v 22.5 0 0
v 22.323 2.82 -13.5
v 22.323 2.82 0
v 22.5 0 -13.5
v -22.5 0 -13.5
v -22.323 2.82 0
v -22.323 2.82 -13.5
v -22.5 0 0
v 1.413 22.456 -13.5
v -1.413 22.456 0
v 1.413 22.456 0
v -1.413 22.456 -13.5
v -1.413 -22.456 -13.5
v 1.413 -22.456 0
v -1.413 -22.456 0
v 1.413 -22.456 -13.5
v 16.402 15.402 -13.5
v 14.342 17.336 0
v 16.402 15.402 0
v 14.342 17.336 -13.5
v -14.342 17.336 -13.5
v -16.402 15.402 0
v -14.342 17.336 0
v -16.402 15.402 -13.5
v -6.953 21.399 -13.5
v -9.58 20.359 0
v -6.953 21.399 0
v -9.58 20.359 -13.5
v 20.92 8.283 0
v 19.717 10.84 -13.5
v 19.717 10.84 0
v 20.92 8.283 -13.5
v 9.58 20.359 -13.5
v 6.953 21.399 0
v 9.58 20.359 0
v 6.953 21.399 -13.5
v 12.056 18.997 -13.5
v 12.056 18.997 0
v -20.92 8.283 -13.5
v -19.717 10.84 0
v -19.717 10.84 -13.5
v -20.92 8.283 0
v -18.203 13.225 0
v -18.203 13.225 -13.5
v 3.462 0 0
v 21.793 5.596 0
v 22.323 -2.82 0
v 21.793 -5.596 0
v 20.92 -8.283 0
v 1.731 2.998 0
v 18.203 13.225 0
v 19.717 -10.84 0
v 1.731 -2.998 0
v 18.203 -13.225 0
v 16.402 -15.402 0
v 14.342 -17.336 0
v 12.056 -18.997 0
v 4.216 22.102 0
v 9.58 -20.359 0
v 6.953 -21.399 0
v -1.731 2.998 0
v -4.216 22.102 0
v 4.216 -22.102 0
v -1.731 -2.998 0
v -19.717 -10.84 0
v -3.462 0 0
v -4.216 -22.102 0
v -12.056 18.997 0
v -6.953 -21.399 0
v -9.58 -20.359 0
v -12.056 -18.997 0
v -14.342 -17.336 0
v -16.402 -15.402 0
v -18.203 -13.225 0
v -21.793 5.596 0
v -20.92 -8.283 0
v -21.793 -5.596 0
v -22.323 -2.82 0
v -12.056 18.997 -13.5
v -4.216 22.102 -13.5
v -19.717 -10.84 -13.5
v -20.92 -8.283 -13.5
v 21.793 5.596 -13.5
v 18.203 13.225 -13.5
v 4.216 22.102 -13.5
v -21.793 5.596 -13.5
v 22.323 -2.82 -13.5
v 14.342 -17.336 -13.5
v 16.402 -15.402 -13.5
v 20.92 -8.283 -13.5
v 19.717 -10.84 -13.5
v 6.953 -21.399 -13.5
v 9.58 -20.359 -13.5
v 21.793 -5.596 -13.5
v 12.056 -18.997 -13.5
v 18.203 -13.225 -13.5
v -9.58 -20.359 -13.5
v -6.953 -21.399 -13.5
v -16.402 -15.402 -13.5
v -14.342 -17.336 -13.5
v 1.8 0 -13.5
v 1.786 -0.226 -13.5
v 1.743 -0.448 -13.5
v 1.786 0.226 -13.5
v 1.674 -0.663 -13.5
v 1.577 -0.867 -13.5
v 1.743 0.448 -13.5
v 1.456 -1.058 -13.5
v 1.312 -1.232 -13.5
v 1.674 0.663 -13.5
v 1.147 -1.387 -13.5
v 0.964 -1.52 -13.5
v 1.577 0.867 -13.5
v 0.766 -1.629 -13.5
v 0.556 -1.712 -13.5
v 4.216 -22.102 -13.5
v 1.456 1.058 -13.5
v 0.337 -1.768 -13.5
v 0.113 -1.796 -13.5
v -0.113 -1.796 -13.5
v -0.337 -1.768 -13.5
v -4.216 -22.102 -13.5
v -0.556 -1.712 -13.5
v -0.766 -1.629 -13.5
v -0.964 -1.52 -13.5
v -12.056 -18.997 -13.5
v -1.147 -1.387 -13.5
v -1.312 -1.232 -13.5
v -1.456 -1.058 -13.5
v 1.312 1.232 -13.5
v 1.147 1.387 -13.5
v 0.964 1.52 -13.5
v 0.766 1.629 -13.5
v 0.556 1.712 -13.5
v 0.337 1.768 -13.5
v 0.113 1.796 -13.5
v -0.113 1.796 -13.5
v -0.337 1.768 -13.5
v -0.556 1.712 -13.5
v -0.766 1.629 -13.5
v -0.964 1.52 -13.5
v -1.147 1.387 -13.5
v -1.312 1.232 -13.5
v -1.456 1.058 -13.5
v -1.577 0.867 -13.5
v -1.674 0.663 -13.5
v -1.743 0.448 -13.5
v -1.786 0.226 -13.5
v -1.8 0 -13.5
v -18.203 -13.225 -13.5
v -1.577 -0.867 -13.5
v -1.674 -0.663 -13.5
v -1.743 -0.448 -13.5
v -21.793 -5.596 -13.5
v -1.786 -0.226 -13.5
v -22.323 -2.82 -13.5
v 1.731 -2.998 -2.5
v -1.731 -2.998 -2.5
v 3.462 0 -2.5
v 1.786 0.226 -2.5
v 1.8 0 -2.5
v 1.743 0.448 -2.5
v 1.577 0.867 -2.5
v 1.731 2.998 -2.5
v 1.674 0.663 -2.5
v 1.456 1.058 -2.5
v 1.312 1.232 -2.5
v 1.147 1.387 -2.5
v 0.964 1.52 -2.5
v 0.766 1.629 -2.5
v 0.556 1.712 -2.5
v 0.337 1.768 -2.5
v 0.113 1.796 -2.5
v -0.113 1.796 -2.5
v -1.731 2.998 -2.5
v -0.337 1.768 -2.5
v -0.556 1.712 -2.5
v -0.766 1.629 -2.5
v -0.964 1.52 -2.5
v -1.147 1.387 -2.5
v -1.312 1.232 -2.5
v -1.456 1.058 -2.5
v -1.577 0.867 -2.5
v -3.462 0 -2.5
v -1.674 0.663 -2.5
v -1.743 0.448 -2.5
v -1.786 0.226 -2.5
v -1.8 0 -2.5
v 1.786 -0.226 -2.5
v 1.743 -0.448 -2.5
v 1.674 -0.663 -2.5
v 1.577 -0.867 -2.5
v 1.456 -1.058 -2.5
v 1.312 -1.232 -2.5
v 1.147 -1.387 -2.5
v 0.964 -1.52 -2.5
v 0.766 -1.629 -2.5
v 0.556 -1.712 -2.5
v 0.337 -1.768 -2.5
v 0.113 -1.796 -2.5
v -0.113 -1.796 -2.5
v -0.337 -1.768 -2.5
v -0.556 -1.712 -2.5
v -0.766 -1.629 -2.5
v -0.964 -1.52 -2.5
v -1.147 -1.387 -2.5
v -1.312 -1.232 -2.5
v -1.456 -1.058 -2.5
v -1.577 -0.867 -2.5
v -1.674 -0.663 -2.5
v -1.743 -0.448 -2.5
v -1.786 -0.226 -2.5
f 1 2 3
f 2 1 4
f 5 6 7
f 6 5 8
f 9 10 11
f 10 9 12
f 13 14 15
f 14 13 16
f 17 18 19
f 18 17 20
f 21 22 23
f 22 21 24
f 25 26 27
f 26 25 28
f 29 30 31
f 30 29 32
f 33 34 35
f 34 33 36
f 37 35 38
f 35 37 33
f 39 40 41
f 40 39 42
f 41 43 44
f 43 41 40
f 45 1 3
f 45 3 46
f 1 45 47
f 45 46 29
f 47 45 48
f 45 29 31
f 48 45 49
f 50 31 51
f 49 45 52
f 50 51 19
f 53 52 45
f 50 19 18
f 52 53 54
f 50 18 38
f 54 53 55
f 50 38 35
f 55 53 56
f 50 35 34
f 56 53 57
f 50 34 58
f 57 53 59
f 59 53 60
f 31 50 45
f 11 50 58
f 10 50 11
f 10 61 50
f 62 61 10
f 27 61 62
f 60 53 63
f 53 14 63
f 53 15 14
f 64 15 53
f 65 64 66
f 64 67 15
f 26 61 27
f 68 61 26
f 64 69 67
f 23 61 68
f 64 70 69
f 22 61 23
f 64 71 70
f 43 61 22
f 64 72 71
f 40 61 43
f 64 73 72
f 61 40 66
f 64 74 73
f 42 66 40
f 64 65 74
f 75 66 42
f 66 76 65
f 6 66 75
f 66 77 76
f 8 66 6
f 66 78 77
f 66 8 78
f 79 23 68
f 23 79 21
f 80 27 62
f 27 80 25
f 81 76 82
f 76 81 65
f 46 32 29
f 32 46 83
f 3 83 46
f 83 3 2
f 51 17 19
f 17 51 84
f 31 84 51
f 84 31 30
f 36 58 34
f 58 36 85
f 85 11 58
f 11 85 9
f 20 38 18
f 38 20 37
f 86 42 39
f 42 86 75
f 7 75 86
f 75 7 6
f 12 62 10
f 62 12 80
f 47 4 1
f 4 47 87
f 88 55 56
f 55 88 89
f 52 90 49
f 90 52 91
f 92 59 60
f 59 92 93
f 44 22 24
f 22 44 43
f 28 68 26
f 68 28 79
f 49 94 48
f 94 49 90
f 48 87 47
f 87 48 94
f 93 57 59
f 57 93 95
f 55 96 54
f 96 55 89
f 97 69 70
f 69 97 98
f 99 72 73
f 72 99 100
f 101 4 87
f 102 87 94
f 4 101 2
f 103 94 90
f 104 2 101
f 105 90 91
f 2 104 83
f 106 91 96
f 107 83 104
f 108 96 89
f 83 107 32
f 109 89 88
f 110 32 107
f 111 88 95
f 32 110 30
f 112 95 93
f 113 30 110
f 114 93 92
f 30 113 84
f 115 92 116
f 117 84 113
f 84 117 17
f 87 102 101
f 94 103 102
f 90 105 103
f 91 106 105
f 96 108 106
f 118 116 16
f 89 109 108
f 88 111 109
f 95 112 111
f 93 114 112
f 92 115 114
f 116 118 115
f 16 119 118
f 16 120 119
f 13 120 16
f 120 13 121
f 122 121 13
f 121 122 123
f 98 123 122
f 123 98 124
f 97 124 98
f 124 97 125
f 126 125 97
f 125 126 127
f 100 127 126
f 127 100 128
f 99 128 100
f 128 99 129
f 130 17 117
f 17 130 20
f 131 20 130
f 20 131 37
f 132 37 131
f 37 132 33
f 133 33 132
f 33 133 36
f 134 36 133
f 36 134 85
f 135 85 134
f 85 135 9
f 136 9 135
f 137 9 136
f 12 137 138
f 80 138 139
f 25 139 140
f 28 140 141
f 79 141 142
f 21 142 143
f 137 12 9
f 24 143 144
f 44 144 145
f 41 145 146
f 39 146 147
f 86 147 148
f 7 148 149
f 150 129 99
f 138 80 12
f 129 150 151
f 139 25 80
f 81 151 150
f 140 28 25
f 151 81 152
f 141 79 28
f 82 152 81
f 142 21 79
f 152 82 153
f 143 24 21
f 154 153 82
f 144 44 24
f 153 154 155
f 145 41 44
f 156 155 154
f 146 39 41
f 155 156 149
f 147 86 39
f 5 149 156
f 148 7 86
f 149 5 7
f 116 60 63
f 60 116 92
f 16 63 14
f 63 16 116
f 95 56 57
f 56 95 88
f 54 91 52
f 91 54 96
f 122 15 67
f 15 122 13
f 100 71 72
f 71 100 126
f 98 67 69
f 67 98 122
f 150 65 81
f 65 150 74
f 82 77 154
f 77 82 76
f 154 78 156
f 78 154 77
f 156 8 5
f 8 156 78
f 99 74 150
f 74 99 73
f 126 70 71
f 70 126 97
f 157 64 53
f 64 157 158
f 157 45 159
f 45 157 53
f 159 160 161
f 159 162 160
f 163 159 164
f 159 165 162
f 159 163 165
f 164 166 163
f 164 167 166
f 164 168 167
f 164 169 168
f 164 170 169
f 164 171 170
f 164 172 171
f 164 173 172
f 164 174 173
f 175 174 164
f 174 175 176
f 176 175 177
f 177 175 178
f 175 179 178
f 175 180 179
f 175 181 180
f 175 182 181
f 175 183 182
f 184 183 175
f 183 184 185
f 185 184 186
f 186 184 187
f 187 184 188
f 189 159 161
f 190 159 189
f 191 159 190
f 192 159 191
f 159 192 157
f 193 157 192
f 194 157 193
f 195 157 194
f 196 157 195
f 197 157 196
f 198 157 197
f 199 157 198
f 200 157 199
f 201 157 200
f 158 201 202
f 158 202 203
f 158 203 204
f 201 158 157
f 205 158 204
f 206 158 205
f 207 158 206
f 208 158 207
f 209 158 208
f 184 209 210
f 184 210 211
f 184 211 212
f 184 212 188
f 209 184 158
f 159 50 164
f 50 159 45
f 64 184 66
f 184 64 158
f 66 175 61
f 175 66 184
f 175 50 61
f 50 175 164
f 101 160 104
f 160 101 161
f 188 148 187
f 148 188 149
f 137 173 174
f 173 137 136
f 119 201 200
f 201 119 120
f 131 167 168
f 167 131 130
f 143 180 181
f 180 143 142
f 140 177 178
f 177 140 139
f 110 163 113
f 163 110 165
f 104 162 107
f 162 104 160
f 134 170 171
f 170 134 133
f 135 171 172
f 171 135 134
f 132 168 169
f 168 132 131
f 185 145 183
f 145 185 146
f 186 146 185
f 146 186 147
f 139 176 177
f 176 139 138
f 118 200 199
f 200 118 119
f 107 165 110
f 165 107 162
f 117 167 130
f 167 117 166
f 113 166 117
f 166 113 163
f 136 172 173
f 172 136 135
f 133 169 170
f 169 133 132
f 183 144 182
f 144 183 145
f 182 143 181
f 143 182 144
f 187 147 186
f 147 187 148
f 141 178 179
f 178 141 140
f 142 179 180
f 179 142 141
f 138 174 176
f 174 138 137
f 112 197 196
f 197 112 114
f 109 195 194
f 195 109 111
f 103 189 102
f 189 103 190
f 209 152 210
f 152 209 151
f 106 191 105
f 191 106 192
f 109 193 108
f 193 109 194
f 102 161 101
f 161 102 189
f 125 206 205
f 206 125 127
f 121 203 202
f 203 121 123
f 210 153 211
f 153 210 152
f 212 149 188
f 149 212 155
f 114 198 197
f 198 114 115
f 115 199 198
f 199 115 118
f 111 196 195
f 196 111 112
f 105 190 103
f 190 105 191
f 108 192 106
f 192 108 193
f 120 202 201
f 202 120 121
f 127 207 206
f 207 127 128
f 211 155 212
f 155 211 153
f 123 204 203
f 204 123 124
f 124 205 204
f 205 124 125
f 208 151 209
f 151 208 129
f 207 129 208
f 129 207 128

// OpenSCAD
$fn = 50;


difference() {
	union() {
		translate(v = [0, 0, -13.5000000000]) {
			cylinder(h = 13.5000000000, r = 22.5000000000);
		}
		translate(v = [0, 0, -12.0000000000]) {
			cylinder(h = 12, r = 2.8750000000);
		}
	}
	union() {
		translate(v = [0, 0, 0]) {
			rotate(a = [0, 0, 0]) {
				difference() {
					union() {
						translate(v = [0, 0, -2.5000000000]) {
							linear_extrude(height = 2.5000000000) {
								polygon(points = [[3.4620000000, 0.0000000000], [1.7310000000, 2.9981799479], [-1.7310000000, 2.9981799479], [-3.4620000000, 0.0000000000], [-1.7310000000, -2.9981799479], [1.7310000000, -2.9981799479]]);
							}
						}
					}
					union();
				}
			}
		}
		#translate(v = [0, 0, -100.0000000000]) {
			cylinder(h = 200, r = 1.8000000000);
		}
	}
}
